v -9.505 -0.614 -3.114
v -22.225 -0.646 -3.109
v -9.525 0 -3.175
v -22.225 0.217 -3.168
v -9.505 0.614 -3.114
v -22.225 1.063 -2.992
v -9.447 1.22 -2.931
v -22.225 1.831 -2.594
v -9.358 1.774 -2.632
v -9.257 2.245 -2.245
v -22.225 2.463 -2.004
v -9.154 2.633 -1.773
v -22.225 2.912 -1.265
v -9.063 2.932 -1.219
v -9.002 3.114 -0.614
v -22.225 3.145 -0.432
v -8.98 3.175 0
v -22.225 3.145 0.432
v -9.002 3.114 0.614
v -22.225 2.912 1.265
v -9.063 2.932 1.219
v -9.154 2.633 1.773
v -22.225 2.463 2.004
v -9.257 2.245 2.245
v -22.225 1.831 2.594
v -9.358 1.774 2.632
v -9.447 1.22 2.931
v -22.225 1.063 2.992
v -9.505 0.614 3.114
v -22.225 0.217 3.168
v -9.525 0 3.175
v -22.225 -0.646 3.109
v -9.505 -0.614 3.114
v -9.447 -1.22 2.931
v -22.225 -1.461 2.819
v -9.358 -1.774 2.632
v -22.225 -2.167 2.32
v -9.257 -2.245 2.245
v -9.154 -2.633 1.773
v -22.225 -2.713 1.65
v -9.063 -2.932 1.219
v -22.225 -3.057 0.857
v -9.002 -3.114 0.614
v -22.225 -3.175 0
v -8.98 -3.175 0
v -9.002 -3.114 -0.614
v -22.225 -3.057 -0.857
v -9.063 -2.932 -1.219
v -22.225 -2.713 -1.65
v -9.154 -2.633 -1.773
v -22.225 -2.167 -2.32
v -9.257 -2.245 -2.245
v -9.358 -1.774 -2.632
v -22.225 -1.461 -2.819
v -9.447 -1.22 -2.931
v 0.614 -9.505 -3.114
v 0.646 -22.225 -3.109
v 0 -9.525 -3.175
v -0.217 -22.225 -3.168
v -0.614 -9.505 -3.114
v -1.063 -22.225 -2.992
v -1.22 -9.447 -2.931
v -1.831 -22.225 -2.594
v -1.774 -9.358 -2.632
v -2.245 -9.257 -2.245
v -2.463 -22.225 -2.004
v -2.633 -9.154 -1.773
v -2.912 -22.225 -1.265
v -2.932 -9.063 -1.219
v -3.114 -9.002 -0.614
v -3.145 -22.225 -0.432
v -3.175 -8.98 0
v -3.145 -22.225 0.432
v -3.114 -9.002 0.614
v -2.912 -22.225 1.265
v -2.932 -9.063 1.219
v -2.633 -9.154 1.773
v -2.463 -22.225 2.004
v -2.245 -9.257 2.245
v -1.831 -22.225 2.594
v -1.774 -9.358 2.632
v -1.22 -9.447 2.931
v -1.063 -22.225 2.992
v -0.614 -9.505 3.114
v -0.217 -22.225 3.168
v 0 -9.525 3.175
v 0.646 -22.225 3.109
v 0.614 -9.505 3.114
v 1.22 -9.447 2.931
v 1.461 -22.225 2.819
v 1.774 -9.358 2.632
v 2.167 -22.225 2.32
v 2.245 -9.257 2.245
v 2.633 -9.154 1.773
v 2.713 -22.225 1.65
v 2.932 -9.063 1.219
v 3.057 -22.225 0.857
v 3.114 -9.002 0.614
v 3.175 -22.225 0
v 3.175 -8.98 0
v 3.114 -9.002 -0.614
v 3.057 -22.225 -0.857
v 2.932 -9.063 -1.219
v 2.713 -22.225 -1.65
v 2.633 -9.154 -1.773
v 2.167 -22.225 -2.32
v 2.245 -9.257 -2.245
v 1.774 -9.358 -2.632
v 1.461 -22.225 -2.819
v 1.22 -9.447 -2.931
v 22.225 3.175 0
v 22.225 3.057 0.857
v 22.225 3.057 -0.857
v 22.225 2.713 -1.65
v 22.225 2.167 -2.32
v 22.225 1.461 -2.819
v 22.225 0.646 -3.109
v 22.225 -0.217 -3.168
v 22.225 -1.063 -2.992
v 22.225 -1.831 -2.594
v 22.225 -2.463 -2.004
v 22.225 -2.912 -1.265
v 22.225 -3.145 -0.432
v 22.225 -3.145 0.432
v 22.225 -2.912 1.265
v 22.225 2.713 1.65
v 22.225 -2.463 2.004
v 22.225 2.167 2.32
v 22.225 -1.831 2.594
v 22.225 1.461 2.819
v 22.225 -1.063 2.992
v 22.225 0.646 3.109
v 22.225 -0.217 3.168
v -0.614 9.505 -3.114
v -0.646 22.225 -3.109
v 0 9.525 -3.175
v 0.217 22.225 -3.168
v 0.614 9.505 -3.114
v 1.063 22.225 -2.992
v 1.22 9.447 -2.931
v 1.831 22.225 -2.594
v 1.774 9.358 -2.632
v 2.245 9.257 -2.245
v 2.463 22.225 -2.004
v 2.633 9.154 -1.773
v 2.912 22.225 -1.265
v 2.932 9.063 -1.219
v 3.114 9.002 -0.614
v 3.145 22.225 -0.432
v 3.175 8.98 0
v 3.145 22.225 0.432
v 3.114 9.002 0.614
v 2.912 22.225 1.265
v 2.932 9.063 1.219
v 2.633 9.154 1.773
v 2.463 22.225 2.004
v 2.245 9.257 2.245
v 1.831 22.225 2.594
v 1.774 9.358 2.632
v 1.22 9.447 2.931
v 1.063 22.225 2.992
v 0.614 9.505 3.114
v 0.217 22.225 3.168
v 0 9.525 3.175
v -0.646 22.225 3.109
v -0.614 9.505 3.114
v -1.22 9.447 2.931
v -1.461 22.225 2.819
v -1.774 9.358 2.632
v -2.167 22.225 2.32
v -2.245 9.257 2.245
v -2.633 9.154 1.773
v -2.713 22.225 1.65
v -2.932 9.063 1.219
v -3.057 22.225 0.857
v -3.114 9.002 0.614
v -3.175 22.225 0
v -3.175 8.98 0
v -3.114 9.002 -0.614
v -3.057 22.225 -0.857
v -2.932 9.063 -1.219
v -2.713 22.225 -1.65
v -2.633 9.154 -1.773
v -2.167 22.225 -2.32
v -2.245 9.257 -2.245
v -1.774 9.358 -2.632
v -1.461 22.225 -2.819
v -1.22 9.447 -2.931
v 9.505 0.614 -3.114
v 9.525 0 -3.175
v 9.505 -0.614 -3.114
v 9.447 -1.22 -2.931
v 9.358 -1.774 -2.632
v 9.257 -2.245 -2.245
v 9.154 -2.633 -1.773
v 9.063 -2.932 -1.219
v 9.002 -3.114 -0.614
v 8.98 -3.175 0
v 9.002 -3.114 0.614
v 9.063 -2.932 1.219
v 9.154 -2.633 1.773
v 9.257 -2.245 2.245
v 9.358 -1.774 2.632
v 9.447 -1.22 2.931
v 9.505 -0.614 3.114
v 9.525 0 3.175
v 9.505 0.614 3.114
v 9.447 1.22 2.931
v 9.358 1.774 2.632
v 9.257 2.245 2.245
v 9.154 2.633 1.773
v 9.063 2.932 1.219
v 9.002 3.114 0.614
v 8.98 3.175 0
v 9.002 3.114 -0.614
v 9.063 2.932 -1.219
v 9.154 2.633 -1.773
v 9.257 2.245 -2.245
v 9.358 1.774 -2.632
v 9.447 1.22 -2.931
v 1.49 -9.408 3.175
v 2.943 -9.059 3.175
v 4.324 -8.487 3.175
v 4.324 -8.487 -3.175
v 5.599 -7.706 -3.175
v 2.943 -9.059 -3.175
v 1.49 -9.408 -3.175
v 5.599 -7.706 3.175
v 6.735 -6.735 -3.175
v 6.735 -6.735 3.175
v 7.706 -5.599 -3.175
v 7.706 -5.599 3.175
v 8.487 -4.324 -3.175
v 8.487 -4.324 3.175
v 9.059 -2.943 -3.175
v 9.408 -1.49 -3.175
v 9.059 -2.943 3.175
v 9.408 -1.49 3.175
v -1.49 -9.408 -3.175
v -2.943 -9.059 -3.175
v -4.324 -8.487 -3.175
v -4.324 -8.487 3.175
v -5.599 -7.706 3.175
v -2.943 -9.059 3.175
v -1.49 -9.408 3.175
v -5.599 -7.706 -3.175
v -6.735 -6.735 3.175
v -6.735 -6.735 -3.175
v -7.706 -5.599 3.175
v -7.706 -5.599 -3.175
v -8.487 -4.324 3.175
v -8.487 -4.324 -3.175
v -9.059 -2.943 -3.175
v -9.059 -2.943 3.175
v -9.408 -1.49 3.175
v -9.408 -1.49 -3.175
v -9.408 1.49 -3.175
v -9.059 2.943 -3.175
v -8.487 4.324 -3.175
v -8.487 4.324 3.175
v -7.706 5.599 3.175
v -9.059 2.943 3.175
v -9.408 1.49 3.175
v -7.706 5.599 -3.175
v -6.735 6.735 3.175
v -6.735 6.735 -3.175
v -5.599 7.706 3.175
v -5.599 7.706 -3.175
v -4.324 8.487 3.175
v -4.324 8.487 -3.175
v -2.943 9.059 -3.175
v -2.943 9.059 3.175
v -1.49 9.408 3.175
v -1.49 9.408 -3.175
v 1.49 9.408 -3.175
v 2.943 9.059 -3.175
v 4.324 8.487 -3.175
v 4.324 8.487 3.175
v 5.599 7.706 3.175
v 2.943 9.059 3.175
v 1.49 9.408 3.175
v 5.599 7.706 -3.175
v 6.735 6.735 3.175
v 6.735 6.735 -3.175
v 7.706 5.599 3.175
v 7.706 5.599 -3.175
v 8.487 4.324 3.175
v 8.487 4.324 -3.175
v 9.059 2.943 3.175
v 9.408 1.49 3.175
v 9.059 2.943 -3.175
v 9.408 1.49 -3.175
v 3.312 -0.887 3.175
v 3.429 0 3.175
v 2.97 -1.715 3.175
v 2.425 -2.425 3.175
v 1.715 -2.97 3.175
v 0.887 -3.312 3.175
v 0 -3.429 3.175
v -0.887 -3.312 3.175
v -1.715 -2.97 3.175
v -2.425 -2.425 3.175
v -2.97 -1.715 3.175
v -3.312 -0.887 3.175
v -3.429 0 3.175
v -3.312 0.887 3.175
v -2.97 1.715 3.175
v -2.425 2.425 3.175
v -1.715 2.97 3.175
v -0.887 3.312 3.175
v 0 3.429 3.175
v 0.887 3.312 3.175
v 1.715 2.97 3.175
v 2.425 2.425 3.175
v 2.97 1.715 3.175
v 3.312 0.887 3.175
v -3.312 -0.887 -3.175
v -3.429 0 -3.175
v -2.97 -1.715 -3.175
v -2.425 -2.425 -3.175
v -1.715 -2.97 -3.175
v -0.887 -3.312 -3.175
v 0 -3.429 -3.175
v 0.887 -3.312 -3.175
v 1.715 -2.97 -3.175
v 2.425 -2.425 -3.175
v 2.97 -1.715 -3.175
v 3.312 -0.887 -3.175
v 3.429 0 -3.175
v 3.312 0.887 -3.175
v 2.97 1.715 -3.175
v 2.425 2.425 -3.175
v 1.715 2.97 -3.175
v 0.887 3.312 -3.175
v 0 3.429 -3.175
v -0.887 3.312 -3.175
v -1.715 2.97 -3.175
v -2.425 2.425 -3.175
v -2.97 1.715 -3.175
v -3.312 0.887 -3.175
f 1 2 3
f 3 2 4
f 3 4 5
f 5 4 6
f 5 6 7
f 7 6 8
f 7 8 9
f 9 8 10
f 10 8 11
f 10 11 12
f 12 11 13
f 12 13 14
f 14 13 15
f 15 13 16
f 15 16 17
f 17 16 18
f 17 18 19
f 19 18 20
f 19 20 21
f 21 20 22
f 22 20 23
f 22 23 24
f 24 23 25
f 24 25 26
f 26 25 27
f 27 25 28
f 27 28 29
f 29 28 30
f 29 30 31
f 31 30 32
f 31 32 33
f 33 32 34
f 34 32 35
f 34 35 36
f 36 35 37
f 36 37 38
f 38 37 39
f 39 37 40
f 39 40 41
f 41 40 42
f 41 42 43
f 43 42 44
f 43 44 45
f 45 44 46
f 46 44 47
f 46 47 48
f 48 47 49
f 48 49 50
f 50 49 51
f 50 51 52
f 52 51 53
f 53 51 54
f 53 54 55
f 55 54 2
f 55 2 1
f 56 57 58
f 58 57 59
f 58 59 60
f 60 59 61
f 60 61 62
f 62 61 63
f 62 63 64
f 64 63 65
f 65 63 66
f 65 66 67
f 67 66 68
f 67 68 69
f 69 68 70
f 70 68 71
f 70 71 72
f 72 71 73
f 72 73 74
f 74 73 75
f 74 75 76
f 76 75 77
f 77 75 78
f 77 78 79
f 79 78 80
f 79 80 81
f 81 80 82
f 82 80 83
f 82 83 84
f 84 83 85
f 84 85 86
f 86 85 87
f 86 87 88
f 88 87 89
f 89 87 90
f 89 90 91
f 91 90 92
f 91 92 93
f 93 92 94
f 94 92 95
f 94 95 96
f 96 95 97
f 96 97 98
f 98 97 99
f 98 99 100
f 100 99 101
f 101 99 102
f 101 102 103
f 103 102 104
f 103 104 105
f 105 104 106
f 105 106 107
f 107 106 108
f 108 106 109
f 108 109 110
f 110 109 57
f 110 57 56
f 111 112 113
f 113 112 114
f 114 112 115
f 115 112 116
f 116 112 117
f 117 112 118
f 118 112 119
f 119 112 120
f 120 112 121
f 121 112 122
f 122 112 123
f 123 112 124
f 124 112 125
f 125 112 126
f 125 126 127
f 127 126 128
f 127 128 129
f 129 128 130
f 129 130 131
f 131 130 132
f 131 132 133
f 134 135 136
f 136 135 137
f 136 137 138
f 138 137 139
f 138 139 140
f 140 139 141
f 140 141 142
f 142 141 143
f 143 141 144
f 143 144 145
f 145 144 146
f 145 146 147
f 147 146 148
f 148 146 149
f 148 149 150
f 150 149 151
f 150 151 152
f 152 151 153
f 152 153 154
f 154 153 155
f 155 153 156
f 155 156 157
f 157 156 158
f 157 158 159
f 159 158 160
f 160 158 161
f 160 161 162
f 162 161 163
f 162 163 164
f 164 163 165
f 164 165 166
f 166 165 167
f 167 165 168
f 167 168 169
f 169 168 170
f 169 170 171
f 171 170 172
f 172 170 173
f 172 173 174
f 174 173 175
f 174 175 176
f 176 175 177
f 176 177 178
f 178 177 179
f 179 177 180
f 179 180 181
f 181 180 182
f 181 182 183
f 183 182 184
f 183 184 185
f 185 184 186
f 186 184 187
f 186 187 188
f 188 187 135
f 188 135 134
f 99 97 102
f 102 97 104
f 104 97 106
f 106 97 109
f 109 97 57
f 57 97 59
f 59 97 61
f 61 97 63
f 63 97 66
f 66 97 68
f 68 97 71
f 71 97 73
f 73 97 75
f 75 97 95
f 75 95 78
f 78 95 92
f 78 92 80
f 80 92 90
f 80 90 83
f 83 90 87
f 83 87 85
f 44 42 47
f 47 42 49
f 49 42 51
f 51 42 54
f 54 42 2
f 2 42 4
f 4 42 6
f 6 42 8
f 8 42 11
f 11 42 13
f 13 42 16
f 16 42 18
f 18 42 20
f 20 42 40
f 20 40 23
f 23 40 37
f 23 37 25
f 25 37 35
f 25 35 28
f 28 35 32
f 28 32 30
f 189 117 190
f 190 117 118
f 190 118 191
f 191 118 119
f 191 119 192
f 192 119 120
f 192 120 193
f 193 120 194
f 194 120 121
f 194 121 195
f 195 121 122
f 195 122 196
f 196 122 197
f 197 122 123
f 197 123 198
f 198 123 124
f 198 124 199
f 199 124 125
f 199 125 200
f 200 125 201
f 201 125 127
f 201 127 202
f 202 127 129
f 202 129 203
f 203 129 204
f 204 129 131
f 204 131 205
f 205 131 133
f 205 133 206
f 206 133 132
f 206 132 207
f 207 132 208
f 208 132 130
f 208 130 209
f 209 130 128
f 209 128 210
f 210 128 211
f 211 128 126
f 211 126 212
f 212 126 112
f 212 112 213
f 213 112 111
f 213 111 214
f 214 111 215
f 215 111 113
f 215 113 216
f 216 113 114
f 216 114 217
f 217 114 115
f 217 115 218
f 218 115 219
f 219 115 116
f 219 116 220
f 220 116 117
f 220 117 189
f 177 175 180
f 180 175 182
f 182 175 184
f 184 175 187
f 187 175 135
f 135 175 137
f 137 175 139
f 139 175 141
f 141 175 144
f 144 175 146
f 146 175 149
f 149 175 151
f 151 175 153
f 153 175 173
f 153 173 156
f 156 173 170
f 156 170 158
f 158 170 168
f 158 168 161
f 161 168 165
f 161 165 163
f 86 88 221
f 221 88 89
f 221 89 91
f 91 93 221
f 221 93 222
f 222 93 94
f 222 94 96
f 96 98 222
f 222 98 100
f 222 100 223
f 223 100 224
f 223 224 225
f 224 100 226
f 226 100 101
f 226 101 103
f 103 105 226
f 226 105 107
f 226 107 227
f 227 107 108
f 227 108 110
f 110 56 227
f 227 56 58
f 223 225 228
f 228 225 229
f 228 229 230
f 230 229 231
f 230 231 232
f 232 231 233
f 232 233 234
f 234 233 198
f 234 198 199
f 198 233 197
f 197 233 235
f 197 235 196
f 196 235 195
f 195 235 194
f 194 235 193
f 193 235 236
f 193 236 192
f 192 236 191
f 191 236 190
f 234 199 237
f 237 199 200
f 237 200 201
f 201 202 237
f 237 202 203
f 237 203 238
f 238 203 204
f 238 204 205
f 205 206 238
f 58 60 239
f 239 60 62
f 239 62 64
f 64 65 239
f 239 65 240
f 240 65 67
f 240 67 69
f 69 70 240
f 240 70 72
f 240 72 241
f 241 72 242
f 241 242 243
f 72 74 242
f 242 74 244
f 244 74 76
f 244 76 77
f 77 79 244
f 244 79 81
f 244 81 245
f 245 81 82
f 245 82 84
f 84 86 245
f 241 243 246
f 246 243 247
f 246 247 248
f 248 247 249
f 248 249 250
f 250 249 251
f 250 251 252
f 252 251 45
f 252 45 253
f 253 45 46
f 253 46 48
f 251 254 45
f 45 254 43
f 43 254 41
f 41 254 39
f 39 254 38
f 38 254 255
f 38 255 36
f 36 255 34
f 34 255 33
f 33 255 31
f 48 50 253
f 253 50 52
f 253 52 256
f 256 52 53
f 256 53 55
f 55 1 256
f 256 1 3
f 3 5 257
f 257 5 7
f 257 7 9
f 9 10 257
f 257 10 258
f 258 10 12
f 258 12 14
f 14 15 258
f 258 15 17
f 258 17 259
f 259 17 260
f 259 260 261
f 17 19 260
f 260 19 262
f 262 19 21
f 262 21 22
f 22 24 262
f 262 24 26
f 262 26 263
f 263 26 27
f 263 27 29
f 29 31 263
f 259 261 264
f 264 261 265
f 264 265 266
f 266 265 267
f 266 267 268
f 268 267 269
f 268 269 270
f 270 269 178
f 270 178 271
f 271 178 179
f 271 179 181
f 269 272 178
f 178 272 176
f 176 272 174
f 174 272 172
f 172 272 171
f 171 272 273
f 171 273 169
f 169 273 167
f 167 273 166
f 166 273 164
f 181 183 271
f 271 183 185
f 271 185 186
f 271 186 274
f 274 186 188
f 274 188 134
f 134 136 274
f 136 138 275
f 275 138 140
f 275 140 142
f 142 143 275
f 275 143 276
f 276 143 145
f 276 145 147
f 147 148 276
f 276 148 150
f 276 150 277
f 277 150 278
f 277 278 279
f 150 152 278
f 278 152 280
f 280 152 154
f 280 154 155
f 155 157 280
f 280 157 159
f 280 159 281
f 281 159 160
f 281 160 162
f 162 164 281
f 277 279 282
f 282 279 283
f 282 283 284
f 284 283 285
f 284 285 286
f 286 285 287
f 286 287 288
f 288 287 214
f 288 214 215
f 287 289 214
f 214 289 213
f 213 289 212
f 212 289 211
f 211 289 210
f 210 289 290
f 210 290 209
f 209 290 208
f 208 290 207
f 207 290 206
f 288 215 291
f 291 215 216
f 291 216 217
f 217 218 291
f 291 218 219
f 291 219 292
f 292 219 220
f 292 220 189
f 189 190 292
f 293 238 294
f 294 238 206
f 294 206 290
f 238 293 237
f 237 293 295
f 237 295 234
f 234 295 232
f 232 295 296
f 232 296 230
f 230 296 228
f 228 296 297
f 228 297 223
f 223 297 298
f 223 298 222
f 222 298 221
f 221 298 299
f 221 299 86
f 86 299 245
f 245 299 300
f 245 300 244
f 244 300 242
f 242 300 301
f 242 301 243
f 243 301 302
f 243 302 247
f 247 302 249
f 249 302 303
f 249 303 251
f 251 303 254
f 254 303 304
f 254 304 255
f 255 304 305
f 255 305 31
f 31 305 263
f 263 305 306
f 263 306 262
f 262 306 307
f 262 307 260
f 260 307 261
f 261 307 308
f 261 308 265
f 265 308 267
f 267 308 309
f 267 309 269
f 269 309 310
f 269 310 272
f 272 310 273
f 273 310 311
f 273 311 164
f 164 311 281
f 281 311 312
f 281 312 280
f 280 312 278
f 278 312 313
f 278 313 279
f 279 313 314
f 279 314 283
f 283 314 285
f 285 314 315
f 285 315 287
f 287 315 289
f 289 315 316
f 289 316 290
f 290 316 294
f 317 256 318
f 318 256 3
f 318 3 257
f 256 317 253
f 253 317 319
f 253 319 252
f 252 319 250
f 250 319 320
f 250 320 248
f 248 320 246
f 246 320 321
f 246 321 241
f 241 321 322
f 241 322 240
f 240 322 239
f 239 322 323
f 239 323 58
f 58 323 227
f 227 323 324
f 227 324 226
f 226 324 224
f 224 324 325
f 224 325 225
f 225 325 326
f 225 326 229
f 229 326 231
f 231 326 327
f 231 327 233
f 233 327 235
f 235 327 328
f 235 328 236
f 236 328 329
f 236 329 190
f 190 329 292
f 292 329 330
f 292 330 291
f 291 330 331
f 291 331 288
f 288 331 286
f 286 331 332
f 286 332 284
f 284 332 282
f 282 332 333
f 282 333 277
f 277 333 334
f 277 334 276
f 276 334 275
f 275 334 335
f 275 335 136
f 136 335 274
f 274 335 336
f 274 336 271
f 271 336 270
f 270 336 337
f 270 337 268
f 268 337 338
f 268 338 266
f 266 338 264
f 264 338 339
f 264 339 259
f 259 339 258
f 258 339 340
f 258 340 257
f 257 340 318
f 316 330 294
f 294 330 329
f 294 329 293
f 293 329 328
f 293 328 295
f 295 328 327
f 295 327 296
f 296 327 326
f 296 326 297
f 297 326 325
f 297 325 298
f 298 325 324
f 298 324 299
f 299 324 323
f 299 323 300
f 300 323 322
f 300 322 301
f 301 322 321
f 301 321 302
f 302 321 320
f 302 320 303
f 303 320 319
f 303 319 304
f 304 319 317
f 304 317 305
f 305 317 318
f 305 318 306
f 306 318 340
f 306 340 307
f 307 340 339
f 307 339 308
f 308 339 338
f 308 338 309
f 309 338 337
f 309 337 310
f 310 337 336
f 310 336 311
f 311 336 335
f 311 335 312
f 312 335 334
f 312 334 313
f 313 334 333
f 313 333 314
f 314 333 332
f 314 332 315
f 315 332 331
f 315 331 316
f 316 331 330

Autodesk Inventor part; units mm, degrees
ref_plane "YZ Plane" through (0, 0, 0) normal (1, 0, 0) x (0, 1, 0)
ref_plane "XZ Plane" through (0, 0, 0) normal (0, 1, 0) x (-1, 0, 0)
sketch "Sketch1" plane through (0, 0, 0) normal (0, 1, 0) x (-1, 0, 0)
  circle A0 centre (0, 0) radius 3.175
  dimension "d0" = 6.35
extrude "Extrusion1" add sketch "Sketch1" along normal blind 22.225
pattern_circular "Circular Pattern1" count 4 over 360 about axis through (0, 0, -10) along (0, 0, 1) of "Extrusion1"
sketch "Sketch2" plane through (0, 0, 0) normal (0, 0, 1) x (1, 0, 0)
  line L0 (0, 0) -> (3.175, -3.175) projected
  circle A0 centre (0, 0) radius 9.525
  dimension "d6" = 19.05
extrude "Extrusion2" add sketch "Sketch2" along normal mid plane 6.35
sketch "Sketch3" plane through (0, 0, -3.175) normal (0, 0, -1) x (-1, 0, 0)
  point P0 (0, 0)
  point P1 (0, 0)
hole "Hole1" at (0, 0, -3.175) direction (0, 0, 1) diameter 6.858 depth 25.4 tip angle 118
sketch "Sketch4" plane through (0, 0, -3.175) normal (0, 0, -1) x (-1, 0, 0)
  line L0 (-3.175, 8.9803) -> (-3.175, 22.225) projected
  line L1 (-22.225, 3.175) -> (-8.9803, 3.175) projected
  arc A0 (0, 9.525) -> (-9.525, 0) centre (0, 0) ccw projected
  line L2 (-10.2954, 3.175) -> (-3.175, 10.2954)
  point P0 (0, 0)
  dimension "d16" = 45
ref_plane "Work Plane1" through (10.2954, 3.175, -3.175) normal (0.7071, 0.7071, 0) x (-0.7071, 0.7071, 0)
sketch "Sketch5" plane through (10.2954, 3.175, -3.175) normal (0.7071, 0.7071, 0) x (-0.7071, 0.7071, 0)
  point P0 (5.0349, 3.175)
  point P1 (5.0349, 3.175)
properties part number "SweeperHub"
